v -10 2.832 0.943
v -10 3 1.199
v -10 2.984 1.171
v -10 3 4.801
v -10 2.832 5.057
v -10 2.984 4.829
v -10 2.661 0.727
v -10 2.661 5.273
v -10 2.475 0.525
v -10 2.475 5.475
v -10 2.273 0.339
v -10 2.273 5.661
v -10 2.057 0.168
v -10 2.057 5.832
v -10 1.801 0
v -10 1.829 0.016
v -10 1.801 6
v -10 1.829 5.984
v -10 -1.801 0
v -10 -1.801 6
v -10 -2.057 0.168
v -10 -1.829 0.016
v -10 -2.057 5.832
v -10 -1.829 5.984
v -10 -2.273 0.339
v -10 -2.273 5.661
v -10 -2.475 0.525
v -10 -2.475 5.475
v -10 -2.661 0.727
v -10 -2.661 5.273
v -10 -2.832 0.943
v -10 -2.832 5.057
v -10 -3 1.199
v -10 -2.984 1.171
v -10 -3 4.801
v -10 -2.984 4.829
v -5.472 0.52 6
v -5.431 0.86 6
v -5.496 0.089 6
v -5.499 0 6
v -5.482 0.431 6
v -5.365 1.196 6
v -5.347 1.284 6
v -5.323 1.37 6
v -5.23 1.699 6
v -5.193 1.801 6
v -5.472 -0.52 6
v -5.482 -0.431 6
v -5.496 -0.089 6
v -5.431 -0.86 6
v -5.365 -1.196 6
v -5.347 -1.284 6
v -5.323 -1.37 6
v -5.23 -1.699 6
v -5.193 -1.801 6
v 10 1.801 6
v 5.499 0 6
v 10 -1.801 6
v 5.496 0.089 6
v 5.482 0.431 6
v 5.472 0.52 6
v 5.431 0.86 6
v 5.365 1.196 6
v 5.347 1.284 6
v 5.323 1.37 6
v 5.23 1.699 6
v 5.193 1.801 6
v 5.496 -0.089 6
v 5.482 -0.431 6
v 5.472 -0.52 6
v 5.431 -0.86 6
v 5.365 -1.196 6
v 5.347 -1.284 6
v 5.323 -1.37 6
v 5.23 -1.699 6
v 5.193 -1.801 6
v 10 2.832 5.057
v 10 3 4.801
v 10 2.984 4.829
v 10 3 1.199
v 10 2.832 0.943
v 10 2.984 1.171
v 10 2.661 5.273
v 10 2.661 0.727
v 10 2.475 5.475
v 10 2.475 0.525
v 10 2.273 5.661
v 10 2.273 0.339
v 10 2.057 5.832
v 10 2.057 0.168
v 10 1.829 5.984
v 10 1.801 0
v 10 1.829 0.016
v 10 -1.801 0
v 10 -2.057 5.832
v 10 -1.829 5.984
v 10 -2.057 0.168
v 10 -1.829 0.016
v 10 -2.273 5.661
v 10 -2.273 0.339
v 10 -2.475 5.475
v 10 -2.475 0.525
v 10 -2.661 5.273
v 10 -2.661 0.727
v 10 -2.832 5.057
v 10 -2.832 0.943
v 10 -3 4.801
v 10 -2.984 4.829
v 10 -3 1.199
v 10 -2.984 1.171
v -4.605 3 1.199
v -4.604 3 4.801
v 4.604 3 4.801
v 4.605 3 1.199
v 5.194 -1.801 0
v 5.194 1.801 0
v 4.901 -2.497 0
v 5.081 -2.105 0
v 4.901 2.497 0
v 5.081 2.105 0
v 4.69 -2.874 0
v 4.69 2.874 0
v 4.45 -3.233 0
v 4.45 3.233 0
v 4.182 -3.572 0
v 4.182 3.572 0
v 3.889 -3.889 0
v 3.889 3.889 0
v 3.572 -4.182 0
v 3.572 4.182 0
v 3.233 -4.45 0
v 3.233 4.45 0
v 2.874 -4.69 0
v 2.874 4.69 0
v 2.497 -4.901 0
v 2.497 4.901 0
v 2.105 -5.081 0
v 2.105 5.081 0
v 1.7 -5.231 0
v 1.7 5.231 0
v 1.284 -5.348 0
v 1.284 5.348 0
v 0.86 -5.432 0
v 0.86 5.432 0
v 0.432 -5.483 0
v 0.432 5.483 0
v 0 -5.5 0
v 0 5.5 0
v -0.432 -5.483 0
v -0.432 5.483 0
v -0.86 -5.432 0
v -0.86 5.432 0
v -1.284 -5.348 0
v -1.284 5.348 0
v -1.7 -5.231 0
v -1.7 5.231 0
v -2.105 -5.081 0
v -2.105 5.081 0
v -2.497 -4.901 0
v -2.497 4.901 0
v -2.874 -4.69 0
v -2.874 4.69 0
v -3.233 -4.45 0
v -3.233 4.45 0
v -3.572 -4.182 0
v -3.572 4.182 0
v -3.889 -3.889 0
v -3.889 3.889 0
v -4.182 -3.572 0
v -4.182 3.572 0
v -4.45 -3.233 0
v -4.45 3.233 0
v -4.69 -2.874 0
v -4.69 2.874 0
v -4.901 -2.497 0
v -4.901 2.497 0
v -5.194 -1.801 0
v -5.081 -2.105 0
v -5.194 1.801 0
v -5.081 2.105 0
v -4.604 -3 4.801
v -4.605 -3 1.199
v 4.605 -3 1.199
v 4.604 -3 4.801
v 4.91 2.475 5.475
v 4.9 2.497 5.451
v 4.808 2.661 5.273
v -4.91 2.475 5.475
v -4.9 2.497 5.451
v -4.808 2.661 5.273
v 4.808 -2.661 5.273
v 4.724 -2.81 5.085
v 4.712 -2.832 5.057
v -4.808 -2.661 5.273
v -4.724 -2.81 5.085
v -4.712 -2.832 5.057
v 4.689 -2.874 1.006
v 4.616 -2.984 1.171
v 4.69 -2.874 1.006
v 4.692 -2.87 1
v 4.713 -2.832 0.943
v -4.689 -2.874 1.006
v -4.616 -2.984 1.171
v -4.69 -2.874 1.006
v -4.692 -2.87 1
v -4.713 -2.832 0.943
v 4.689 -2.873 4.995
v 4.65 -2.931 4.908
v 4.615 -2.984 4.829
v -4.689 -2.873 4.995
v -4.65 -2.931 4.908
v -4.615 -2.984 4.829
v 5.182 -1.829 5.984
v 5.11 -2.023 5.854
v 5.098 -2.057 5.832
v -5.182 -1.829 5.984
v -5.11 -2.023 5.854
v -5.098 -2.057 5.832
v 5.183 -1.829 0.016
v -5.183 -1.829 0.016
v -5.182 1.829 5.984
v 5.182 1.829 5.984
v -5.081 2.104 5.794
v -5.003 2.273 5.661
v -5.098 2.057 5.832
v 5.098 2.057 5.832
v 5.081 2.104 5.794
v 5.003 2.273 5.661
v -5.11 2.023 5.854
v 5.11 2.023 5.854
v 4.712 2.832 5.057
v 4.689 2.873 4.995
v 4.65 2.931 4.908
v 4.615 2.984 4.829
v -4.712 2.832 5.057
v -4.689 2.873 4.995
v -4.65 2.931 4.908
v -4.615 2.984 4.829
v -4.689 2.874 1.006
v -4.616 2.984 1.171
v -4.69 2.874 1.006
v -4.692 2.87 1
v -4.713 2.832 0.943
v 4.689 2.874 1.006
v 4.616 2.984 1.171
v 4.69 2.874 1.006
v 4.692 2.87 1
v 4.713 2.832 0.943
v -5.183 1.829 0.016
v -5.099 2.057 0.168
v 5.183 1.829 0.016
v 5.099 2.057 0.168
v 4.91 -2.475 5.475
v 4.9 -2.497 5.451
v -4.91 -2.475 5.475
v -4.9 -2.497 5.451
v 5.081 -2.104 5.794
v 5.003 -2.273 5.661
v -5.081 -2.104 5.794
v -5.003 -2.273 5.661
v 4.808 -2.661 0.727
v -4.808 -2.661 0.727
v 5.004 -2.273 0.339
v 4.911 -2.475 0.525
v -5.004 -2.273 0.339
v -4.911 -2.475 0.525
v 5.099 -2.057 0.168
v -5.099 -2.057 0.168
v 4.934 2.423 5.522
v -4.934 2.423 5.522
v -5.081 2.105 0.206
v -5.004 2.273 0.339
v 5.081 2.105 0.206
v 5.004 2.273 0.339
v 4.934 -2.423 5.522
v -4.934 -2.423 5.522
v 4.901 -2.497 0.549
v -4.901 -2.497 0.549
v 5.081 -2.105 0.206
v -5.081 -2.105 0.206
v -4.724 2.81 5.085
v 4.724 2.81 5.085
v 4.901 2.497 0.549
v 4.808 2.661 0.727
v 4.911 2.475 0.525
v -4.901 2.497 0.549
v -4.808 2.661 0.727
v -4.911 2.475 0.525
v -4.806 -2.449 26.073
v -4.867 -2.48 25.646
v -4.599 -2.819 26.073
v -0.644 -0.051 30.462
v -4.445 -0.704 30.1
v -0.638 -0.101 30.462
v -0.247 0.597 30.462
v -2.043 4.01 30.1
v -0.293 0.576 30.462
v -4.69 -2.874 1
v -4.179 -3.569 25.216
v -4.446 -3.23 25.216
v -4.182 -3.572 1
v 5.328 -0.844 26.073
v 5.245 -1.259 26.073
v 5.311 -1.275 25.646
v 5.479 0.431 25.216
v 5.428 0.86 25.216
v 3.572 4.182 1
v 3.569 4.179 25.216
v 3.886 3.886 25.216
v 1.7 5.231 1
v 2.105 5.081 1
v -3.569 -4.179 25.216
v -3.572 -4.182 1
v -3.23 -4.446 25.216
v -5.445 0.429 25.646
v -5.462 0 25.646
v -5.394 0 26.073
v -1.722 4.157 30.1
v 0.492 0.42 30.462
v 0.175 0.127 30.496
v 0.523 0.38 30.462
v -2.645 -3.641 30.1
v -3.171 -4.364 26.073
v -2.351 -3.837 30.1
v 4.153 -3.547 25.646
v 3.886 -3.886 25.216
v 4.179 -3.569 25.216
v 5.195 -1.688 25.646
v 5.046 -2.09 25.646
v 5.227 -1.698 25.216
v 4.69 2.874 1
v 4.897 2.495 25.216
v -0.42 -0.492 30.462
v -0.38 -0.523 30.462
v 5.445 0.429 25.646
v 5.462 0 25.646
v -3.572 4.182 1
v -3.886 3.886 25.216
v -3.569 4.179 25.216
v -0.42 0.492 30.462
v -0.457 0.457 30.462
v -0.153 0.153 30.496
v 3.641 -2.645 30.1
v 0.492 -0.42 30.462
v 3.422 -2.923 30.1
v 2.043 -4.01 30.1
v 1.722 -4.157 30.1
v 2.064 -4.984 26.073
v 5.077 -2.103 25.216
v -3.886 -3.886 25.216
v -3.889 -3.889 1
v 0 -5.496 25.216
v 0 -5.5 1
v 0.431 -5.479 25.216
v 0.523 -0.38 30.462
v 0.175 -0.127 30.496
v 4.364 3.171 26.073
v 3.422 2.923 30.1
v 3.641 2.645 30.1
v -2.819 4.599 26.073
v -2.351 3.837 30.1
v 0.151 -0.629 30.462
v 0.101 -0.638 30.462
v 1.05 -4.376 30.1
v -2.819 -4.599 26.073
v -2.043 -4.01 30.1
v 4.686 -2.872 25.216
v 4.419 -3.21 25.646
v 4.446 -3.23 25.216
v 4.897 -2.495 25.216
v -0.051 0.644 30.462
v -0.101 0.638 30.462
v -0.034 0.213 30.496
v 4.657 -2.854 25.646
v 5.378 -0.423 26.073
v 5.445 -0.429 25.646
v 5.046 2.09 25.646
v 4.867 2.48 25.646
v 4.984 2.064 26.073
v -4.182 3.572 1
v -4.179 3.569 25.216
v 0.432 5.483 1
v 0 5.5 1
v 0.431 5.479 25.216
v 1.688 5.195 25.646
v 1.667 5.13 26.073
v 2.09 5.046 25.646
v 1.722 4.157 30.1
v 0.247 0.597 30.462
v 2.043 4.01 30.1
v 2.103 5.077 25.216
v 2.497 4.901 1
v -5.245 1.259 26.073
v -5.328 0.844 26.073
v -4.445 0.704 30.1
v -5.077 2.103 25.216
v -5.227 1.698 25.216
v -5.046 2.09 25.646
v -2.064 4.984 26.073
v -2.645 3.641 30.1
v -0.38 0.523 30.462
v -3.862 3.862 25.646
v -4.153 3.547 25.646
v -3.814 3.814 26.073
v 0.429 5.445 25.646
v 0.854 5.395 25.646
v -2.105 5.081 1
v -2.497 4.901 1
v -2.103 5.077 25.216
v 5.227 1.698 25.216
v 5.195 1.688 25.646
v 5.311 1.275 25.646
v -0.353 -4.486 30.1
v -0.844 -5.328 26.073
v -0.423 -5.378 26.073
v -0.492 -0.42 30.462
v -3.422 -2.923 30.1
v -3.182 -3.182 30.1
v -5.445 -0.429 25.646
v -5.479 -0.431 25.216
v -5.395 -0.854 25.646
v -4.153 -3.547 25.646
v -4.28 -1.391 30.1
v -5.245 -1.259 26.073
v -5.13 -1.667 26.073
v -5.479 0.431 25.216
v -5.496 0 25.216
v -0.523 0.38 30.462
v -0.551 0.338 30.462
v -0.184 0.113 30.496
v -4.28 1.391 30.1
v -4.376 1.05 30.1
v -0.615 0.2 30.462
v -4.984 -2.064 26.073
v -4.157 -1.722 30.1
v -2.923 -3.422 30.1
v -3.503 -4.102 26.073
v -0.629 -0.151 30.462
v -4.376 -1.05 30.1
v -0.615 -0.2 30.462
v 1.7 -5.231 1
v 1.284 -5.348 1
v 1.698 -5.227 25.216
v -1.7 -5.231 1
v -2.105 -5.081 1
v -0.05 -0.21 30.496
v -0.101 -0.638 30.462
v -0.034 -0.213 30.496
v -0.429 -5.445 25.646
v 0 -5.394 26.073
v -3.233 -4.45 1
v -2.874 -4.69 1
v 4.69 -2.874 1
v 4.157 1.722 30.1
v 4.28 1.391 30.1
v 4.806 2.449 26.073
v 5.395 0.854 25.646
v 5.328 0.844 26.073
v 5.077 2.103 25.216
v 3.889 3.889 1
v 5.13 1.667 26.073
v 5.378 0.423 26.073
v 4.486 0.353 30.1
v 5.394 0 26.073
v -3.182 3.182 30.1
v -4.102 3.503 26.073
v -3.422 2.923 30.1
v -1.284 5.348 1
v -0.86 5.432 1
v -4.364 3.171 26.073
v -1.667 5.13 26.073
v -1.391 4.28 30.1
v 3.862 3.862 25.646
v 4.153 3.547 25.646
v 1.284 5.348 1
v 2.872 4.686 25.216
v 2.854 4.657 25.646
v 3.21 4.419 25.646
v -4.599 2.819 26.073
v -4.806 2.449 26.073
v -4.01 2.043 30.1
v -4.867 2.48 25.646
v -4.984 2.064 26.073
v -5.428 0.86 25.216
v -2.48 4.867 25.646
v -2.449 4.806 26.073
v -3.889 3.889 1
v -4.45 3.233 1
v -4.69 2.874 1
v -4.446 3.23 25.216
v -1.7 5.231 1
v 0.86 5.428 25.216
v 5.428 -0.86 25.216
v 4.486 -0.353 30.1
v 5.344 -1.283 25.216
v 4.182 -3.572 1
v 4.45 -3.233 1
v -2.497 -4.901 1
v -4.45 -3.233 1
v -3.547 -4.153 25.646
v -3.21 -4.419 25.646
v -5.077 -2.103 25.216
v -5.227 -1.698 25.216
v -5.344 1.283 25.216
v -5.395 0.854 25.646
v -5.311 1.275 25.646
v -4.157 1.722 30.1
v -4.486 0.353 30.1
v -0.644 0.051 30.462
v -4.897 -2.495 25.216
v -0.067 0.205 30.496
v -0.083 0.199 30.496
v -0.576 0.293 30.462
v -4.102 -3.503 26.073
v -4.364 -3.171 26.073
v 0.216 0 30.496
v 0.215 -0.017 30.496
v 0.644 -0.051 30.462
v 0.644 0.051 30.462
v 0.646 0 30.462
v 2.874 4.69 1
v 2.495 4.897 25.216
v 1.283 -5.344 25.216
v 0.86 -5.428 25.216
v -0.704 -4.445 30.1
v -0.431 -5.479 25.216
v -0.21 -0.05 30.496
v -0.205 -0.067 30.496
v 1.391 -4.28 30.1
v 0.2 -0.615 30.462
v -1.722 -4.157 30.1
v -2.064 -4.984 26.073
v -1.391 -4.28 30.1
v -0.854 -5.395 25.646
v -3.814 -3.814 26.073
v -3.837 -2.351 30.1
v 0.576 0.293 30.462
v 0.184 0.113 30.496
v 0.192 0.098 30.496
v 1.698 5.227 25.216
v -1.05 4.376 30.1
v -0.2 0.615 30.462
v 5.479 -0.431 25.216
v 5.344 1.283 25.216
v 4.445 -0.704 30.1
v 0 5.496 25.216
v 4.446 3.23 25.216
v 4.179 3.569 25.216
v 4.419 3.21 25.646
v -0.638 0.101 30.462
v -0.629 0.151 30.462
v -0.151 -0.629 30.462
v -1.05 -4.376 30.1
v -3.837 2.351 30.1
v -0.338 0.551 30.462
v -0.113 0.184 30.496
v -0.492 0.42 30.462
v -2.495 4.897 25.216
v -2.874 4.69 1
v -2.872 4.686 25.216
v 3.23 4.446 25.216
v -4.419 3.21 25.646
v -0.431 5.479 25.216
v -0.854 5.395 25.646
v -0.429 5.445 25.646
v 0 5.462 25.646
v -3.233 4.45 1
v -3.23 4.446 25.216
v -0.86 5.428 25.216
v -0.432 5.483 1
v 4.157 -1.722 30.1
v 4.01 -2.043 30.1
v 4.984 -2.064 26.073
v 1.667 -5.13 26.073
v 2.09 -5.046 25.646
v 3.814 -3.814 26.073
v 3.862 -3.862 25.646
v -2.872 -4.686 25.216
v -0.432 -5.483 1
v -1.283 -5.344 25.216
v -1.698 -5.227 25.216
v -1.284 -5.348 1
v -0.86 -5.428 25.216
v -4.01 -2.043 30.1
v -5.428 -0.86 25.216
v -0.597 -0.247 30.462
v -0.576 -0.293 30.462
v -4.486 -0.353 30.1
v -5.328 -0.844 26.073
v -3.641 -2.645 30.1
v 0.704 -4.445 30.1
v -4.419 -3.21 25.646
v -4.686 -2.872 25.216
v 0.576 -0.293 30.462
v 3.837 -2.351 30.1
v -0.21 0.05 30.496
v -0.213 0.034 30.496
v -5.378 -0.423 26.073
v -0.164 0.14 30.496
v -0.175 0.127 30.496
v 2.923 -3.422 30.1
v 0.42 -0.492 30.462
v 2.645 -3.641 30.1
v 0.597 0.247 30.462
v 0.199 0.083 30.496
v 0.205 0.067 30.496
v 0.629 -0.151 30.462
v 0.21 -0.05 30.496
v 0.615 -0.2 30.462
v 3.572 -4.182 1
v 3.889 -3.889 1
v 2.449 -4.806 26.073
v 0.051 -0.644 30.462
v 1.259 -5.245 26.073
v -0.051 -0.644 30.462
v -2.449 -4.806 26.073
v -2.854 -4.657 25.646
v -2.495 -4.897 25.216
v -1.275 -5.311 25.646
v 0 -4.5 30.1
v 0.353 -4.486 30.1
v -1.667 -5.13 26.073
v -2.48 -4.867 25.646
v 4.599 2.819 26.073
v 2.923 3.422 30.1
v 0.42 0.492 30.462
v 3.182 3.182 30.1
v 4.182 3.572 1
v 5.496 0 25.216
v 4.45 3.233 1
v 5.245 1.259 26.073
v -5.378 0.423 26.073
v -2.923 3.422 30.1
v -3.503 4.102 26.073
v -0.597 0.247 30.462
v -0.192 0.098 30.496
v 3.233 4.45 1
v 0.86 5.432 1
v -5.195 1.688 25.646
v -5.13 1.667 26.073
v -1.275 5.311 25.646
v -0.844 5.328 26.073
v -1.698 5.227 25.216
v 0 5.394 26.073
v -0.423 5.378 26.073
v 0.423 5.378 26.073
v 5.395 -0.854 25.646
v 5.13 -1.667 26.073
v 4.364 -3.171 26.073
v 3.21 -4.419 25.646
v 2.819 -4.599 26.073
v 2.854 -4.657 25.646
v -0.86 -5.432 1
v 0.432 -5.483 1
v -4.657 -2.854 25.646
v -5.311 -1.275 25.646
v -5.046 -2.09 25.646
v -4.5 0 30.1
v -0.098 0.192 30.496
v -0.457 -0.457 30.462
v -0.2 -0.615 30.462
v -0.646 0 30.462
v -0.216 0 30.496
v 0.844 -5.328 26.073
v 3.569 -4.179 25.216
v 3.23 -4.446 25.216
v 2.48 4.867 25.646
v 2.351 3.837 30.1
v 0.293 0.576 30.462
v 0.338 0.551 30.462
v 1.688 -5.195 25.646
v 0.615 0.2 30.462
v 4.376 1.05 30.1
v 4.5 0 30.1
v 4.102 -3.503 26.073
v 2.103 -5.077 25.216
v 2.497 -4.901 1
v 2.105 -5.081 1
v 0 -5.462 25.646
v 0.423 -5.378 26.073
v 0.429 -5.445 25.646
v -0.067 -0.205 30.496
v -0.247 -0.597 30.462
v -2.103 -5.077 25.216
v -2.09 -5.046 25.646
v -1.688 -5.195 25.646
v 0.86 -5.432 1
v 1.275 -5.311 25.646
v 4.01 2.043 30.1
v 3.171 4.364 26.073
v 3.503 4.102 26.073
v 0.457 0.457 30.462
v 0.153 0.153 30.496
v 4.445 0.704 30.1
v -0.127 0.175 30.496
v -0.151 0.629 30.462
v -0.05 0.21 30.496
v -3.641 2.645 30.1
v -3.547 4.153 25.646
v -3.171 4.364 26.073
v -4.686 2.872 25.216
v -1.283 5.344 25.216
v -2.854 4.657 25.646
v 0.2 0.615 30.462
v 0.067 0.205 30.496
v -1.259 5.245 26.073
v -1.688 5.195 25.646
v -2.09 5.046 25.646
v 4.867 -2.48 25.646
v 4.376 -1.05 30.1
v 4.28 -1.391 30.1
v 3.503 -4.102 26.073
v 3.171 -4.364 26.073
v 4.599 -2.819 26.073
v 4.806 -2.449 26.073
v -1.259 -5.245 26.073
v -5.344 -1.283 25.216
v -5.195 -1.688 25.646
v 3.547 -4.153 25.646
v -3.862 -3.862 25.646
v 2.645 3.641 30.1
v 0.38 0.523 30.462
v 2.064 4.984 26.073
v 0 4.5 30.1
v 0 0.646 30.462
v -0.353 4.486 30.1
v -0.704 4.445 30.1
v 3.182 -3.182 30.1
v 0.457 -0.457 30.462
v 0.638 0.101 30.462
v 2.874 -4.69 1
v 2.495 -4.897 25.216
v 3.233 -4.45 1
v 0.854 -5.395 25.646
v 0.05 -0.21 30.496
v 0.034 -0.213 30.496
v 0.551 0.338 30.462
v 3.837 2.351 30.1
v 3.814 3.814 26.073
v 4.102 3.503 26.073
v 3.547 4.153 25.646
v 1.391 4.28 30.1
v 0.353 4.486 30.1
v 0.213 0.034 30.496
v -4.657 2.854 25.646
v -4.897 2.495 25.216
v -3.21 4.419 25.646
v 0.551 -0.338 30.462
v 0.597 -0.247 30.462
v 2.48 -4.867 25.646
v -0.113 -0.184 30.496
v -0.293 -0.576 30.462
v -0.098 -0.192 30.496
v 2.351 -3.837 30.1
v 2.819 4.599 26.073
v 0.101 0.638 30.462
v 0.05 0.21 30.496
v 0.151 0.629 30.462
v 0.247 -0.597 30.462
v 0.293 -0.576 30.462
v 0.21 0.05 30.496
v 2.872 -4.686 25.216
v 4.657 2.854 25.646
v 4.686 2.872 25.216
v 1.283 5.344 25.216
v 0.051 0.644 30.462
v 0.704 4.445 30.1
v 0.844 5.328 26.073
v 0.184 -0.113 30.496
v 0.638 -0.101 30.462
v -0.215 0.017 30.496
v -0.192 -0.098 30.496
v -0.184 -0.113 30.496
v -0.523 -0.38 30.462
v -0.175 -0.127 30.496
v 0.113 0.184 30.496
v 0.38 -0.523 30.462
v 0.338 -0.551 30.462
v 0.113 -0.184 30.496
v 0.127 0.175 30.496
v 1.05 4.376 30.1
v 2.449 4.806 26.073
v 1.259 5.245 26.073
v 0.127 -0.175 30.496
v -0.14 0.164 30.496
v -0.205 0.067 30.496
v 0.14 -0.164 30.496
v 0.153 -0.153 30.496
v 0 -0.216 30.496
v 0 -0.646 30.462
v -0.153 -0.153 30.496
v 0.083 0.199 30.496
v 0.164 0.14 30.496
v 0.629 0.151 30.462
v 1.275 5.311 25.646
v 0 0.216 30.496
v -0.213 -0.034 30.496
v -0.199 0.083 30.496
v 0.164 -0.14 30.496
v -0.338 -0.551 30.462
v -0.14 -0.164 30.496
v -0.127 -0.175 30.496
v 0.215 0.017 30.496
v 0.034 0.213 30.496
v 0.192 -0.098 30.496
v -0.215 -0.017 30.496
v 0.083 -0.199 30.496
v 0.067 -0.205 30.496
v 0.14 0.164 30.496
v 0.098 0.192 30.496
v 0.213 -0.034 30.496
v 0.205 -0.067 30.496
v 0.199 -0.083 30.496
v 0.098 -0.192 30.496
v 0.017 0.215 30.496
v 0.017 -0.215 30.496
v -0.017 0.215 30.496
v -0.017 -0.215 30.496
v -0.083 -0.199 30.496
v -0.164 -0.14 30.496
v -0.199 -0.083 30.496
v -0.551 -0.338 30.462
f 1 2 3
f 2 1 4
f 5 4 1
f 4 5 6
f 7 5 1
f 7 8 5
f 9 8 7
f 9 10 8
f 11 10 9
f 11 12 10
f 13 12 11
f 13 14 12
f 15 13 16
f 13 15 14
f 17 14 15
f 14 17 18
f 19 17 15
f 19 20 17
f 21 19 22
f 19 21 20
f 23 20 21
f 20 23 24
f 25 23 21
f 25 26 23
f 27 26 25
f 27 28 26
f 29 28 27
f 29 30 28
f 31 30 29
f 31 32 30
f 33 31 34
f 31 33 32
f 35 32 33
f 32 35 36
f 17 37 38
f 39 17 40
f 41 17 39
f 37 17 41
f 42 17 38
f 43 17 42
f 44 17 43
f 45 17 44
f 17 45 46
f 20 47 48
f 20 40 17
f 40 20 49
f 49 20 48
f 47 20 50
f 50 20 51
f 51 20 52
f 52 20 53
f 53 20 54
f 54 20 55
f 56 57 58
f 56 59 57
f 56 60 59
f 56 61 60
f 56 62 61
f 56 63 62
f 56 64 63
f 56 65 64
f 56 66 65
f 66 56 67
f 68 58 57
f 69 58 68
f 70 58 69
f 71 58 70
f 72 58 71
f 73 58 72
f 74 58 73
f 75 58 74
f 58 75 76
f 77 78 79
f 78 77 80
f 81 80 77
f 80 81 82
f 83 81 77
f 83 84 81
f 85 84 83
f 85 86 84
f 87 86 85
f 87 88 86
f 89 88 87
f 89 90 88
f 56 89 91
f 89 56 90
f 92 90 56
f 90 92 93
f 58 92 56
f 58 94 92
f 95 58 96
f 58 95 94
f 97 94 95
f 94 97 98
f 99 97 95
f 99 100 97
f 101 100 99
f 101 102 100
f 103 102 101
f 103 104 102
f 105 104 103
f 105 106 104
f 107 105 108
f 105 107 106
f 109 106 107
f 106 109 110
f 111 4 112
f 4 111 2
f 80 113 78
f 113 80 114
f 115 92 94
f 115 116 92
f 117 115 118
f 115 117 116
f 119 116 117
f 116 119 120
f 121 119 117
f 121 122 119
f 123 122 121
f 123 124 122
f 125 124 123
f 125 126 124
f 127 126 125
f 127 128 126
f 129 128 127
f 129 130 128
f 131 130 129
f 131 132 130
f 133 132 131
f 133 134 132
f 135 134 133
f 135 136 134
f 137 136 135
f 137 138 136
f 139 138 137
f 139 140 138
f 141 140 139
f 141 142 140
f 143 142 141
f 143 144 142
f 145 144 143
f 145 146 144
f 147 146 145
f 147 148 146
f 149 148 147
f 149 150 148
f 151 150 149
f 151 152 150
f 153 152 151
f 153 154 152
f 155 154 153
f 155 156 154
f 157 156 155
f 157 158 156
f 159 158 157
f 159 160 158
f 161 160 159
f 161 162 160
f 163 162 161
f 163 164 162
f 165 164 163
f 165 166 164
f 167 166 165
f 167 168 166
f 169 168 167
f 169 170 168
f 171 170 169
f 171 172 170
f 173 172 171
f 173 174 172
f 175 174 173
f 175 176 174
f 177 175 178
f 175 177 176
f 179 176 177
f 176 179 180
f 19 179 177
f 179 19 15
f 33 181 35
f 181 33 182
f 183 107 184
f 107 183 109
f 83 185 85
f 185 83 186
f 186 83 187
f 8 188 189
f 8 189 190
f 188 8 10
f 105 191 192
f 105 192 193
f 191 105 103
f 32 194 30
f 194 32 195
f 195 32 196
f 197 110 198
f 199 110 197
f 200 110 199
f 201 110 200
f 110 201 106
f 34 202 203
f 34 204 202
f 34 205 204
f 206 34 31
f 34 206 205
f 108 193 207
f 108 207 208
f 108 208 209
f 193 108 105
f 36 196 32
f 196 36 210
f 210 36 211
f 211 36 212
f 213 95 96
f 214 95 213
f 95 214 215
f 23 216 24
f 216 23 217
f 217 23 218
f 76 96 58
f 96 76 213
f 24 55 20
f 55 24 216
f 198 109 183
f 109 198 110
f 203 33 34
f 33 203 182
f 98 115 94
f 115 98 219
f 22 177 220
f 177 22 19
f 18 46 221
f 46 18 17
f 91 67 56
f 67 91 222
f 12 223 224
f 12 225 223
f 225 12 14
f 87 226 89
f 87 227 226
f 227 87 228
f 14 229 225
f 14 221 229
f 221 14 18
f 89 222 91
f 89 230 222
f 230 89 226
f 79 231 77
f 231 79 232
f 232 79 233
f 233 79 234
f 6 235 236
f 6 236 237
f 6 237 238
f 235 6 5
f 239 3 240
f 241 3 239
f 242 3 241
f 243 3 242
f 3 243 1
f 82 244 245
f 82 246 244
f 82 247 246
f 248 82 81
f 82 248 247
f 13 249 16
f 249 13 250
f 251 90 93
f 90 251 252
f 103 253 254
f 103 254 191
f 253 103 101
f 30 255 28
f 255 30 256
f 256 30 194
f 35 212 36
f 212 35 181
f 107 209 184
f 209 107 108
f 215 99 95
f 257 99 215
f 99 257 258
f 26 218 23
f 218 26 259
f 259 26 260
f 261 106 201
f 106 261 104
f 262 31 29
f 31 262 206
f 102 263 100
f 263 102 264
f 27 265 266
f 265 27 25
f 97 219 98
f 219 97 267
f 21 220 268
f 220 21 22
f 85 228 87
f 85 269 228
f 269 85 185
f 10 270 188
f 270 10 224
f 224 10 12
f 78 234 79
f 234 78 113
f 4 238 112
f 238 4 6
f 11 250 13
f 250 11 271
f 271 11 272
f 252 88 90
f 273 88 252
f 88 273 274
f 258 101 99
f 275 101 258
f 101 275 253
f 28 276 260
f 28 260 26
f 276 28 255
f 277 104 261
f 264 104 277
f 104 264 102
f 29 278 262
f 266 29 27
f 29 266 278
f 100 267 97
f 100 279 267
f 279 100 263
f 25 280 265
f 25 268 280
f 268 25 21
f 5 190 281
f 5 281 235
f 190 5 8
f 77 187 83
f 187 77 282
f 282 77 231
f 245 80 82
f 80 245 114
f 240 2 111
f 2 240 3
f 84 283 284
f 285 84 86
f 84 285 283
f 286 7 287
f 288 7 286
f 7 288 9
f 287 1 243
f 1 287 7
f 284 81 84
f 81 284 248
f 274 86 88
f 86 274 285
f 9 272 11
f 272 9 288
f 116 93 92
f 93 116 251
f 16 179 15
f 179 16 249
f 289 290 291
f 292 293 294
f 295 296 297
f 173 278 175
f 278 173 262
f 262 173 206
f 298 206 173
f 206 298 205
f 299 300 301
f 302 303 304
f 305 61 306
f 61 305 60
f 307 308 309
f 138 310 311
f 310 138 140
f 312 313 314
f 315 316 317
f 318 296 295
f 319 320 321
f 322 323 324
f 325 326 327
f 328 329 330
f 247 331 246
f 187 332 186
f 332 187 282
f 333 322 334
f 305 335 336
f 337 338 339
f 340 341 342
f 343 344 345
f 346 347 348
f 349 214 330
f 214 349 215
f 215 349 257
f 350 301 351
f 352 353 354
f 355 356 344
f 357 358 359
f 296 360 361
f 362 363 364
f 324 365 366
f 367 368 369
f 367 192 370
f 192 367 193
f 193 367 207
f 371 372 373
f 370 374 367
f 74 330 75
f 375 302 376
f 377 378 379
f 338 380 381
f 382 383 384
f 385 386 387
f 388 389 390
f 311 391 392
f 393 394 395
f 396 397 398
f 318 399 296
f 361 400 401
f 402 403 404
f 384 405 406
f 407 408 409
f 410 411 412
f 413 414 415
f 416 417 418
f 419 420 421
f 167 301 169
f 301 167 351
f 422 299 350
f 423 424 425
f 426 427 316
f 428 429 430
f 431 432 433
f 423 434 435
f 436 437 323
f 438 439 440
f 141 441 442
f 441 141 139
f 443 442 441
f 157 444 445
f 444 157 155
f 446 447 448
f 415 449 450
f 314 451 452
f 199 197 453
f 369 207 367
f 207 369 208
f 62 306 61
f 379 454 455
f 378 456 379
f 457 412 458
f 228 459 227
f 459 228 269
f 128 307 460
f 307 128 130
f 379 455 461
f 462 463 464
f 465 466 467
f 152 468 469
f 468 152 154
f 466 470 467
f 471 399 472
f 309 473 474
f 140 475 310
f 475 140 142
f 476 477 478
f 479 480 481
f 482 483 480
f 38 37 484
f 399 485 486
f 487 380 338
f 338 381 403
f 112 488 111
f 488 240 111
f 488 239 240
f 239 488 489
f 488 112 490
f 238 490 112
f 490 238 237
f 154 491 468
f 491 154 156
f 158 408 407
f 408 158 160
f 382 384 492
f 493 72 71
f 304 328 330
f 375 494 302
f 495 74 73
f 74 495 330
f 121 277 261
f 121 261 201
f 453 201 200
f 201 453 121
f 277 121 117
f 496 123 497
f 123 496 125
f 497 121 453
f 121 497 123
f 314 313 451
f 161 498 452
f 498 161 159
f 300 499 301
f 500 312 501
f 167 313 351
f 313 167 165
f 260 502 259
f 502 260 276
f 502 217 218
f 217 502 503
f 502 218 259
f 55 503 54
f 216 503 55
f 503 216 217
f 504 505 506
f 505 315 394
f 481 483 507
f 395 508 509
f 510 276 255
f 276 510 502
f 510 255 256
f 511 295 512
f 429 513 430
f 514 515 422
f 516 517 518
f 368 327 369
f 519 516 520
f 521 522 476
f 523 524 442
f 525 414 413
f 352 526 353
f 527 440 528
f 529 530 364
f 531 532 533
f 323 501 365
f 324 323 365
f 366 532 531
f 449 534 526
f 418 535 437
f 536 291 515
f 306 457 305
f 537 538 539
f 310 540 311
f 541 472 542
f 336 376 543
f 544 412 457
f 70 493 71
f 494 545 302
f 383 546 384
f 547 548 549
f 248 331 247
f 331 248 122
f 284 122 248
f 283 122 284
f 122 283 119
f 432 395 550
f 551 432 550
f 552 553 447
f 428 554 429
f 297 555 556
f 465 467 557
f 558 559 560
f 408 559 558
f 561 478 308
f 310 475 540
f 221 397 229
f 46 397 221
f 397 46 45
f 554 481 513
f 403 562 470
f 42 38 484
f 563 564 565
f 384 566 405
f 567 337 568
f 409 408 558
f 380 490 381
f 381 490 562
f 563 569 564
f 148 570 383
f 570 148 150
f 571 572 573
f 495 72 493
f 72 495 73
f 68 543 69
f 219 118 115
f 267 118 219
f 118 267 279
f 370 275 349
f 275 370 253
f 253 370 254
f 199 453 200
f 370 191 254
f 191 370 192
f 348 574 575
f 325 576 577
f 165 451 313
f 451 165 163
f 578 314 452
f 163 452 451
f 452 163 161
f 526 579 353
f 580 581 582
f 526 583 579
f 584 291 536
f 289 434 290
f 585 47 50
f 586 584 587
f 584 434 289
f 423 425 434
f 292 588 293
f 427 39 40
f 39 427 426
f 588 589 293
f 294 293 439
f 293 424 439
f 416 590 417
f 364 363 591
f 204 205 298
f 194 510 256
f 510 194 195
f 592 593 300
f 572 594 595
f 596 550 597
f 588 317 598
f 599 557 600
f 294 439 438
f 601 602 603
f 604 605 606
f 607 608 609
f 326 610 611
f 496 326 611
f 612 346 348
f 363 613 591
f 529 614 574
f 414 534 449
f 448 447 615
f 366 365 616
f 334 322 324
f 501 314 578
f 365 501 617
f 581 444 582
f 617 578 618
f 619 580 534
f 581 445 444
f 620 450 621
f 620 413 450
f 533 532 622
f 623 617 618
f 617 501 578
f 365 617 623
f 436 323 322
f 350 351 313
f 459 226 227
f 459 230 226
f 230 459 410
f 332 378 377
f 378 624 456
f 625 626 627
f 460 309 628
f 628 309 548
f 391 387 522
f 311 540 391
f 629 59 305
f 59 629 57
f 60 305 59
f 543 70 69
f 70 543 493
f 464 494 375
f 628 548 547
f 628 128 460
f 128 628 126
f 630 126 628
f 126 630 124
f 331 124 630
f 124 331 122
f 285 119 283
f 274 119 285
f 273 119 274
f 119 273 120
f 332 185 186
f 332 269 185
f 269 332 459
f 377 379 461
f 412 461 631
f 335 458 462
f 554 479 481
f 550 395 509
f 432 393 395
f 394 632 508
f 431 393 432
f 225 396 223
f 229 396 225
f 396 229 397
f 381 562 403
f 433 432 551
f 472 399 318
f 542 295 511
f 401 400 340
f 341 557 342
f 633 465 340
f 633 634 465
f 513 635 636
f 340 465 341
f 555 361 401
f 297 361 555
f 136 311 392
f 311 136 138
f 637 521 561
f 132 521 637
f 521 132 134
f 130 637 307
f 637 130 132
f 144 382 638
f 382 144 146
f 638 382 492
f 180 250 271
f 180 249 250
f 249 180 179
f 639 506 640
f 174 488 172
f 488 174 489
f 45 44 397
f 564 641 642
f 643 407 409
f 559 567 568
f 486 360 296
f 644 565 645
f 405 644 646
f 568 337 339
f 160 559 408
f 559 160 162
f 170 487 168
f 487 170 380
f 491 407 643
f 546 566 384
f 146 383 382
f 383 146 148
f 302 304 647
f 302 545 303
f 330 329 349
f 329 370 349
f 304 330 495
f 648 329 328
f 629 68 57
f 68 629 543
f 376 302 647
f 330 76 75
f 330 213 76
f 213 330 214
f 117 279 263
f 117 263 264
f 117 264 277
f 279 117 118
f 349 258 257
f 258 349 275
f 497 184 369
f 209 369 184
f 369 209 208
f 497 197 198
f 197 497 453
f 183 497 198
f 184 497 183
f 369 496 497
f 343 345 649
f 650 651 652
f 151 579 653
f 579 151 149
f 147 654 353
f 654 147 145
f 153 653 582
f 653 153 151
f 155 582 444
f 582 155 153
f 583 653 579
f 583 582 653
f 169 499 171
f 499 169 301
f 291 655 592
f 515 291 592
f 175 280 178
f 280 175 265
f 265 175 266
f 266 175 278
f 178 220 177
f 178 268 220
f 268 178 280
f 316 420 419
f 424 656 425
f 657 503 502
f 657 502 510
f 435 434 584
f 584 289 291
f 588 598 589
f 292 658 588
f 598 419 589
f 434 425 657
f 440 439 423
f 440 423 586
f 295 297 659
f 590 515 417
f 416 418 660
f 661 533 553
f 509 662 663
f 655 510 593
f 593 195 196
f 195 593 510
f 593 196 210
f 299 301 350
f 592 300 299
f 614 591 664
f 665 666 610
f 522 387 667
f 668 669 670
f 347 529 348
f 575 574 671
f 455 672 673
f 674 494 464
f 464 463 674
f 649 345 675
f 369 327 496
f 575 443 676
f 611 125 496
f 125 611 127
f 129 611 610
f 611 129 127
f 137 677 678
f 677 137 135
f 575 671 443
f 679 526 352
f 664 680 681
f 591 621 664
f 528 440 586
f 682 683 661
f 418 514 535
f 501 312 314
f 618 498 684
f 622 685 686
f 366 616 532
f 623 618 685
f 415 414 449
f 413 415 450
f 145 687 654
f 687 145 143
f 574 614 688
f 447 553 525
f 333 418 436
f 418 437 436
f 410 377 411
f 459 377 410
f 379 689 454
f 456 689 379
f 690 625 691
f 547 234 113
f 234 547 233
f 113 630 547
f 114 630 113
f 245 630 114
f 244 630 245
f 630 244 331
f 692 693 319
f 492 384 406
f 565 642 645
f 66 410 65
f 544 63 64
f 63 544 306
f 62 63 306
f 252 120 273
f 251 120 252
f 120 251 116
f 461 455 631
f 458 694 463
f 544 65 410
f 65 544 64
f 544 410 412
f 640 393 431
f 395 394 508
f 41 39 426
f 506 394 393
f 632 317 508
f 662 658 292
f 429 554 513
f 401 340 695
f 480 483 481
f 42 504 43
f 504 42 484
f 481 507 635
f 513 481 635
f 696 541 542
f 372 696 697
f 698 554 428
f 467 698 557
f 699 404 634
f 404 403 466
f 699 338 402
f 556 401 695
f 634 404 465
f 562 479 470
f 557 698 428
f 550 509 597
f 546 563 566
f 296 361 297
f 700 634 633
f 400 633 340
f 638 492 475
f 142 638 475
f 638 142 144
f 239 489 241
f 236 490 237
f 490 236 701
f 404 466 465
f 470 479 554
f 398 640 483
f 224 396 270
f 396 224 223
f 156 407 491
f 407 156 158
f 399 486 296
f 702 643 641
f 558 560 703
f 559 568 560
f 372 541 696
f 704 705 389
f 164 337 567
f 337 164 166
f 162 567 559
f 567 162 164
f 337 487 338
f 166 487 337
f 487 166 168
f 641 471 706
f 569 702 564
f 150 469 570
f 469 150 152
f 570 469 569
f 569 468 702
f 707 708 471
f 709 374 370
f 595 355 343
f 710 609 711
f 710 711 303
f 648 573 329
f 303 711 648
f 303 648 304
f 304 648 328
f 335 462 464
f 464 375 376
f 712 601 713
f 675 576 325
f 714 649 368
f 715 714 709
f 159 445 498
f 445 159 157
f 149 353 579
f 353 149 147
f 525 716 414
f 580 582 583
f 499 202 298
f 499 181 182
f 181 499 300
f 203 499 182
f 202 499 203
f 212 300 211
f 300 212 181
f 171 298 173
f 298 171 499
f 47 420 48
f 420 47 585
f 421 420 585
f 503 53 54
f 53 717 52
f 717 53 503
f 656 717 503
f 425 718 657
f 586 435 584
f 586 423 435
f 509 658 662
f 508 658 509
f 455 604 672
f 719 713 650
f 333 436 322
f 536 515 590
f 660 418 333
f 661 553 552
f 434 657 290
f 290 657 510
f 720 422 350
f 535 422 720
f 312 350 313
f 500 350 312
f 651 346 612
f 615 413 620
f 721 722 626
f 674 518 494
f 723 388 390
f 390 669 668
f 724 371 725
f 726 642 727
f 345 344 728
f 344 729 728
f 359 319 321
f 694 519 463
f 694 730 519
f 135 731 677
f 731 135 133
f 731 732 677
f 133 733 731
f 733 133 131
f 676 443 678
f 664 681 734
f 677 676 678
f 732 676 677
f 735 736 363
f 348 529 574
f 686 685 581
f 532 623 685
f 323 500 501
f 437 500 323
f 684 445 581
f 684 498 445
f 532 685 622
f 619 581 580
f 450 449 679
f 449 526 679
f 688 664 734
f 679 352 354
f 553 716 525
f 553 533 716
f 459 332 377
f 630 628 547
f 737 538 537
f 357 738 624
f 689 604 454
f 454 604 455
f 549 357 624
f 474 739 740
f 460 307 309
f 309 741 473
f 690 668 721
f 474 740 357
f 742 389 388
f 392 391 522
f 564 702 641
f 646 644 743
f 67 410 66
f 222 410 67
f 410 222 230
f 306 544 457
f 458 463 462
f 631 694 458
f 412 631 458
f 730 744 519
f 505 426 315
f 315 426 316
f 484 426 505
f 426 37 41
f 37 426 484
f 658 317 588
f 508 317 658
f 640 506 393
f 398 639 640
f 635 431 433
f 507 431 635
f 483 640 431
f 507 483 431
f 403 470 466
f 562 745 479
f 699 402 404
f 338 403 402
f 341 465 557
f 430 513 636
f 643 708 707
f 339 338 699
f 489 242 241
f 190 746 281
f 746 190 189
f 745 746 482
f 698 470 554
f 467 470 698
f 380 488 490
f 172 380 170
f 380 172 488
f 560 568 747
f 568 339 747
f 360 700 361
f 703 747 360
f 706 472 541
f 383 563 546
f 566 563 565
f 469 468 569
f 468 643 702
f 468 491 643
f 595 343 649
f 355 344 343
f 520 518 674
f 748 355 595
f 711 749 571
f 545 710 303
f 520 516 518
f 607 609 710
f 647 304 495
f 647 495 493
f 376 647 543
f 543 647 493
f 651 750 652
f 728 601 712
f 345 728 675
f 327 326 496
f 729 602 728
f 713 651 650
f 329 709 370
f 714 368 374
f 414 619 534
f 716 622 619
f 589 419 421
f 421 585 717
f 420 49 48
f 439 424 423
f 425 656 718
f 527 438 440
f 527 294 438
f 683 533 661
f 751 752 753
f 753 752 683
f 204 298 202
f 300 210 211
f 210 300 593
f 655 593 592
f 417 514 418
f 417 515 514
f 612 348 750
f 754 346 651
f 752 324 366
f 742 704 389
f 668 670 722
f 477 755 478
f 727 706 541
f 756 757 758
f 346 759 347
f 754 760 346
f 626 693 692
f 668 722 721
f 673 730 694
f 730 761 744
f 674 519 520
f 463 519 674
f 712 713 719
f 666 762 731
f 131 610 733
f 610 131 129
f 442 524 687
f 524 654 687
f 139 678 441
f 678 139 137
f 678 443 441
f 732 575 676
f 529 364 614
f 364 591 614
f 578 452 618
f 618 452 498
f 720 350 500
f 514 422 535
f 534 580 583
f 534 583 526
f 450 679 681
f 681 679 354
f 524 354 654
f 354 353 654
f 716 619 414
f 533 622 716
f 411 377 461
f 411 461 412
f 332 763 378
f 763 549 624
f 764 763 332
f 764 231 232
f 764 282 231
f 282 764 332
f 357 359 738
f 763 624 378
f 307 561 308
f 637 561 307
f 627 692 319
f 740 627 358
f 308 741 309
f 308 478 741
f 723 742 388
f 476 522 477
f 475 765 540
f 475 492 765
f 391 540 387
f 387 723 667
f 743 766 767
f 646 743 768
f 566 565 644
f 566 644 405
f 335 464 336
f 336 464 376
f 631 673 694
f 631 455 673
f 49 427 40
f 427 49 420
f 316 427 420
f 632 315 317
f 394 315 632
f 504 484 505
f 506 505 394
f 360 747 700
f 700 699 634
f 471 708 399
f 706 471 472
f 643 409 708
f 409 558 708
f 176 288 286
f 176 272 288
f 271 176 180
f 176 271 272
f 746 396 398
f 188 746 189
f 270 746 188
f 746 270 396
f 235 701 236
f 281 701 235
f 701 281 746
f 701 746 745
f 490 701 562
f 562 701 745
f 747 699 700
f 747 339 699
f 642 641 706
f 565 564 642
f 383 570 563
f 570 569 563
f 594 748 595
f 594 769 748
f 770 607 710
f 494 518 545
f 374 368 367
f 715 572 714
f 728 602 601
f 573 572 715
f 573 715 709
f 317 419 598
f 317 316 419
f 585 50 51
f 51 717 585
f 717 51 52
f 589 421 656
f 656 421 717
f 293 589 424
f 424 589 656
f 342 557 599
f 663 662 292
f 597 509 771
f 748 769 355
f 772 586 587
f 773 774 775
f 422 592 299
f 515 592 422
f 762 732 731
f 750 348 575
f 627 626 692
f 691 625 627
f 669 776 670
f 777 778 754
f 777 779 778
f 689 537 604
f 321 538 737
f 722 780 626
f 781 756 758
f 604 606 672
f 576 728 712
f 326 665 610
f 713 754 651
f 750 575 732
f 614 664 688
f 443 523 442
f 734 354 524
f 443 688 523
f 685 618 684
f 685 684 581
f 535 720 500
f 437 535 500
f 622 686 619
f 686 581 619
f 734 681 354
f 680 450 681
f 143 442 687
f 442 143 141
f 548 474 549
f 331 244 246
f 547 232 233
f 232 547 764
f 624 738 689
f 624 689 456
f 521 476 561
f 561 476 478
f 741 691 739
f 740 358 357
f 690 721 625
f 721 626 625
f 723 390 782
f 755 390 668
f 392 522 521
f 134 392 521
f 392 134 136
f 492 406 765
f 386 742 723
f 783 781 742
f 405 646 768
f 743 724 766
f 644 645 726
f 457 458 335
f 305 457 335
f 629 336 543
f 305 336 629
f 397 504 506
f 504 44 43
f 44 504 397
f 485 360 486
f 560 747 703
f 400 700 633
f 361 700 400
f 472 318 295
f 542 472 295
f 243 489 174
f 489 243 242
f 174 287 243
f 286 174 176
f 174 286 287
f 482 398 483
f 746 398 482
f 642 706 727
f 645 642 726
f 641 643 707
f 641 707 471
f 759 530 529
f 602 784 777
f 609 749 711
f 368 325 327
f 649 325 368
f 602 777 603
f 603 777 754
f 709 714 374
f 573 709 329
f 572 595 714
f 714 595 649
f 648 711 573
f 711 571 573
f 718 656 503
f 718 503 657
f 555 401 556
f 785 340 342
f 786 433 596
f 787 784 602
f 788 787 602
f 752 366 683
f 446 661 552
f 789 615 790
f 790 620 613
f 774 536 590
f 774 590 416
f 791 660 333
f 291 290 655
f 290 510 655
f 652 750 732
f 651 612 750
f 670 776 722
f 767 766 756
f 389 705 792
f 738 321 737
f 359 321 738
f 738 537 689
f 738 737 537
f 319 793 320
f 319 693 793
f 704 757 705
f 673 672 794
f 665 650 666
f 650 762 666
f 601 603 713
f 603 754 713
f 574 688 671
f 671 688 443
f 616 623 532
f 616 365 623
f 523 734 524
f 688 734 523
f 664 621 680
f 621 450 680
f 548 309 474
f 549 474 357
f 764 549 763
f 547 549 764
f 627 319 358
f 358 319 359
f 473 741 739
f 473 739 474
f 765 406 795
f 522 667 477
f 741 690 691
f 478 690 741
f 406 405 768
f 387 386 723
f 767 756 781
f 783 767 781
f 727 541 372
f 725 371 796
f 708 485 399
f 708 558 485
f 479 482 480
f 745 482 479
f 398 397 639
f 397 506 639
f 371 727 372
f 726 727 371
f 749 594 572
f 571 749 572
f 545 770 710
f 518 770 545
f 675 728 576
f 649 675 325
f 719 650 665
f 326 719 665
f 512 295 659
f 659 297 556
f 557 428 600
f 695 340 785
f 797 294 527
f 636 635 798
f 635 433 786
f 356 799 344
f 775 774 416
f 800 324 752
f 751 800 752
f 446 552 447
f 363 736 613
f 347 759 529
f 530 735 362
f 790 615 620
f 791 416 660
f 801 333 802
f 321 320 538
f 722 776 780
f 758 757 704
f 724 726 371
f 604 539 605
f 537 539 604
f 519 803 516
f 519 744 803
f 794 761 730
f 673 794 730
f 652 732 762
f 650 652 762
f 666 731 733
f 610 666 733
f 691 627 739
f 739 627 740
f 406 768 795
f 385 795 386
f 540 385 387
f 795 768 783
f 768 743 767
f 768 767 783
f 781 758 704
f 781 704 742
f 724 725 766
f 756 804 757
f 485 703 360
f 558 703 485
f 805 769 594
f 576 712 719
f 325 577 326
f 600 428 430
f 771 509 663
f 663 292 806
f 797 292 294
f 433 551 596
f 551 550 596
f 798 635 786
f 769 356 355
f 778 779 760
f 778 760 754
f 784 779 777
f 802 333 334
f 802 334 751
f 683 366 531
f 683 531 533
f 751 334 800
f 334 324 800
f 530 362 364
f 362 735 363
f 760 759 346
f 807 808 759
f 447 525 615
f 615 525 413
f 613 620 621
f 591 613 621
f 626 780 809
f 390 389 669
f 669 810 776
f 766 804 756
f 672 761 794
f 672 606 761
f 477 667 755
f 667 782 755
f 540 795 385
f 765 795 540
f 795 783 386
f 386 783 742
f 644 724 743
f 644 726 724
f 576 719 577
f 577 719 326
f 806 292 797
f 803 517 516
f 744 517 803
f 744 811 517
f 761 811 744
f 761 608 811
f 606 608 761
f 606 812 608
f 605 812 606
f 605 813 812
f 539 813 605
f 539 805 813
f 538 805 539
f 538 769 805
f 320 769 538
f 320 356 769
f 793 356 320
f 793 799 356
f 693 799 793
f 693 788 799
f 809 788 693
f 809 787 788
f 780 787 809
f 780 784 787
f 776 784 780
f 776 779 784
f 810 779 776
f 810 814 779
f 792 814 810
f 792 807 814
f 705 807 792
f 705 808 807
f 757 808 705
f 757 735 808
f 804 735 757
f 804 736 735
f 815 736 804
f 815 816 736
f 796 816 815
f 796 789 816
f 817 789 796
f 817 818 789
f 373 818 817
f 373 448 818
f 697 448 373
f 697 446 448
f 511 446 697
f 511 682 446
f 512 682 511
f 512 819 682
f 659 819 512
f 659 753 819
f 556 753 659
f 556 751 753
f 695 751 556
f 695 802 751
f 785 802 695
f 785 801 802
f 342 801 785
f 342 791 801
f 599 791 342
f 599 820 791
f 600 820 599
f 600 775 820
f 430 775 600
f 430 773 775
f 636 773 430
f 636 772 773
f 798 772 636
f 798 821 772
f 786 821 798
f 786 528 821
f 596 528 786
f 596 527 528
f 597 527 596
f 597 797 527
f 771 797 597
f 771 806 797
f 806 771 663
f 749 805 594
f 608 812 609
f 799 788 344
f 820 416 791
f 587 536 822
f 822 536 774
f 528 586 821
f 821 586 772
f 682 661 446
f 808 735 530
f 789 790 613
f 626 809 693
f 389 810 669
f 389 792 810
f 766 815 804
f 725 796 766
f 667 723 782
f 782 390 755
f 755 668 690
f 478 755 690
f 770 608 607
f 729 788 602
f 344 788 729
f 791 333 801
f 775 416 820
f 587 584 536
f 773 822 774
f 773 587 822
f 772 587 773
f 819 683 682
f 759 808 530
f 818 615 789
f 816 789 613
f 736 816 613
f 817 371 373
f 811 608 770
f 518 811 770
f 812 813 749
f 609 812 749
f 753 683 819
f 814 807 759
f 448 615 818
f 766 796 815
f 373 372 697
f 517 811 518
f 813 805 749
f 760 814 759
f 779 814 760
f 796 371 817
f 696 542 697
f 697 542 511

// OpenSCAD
$fn=80;

plug_dia = 11;

translate([0,0,3]) intersection() {
    cube([20,6,6],center=true);
    translate([10,0,0]) rotate([0,-90,0]) cylinder(d=7, h=20);
}
hull() {
    cylinder(d=plug_dia, h=1);
    translate([0,0,25]) sphere(d=plug_dia);
    translate([0,0,30]) cylinder(d=9,h=0.1);
}
